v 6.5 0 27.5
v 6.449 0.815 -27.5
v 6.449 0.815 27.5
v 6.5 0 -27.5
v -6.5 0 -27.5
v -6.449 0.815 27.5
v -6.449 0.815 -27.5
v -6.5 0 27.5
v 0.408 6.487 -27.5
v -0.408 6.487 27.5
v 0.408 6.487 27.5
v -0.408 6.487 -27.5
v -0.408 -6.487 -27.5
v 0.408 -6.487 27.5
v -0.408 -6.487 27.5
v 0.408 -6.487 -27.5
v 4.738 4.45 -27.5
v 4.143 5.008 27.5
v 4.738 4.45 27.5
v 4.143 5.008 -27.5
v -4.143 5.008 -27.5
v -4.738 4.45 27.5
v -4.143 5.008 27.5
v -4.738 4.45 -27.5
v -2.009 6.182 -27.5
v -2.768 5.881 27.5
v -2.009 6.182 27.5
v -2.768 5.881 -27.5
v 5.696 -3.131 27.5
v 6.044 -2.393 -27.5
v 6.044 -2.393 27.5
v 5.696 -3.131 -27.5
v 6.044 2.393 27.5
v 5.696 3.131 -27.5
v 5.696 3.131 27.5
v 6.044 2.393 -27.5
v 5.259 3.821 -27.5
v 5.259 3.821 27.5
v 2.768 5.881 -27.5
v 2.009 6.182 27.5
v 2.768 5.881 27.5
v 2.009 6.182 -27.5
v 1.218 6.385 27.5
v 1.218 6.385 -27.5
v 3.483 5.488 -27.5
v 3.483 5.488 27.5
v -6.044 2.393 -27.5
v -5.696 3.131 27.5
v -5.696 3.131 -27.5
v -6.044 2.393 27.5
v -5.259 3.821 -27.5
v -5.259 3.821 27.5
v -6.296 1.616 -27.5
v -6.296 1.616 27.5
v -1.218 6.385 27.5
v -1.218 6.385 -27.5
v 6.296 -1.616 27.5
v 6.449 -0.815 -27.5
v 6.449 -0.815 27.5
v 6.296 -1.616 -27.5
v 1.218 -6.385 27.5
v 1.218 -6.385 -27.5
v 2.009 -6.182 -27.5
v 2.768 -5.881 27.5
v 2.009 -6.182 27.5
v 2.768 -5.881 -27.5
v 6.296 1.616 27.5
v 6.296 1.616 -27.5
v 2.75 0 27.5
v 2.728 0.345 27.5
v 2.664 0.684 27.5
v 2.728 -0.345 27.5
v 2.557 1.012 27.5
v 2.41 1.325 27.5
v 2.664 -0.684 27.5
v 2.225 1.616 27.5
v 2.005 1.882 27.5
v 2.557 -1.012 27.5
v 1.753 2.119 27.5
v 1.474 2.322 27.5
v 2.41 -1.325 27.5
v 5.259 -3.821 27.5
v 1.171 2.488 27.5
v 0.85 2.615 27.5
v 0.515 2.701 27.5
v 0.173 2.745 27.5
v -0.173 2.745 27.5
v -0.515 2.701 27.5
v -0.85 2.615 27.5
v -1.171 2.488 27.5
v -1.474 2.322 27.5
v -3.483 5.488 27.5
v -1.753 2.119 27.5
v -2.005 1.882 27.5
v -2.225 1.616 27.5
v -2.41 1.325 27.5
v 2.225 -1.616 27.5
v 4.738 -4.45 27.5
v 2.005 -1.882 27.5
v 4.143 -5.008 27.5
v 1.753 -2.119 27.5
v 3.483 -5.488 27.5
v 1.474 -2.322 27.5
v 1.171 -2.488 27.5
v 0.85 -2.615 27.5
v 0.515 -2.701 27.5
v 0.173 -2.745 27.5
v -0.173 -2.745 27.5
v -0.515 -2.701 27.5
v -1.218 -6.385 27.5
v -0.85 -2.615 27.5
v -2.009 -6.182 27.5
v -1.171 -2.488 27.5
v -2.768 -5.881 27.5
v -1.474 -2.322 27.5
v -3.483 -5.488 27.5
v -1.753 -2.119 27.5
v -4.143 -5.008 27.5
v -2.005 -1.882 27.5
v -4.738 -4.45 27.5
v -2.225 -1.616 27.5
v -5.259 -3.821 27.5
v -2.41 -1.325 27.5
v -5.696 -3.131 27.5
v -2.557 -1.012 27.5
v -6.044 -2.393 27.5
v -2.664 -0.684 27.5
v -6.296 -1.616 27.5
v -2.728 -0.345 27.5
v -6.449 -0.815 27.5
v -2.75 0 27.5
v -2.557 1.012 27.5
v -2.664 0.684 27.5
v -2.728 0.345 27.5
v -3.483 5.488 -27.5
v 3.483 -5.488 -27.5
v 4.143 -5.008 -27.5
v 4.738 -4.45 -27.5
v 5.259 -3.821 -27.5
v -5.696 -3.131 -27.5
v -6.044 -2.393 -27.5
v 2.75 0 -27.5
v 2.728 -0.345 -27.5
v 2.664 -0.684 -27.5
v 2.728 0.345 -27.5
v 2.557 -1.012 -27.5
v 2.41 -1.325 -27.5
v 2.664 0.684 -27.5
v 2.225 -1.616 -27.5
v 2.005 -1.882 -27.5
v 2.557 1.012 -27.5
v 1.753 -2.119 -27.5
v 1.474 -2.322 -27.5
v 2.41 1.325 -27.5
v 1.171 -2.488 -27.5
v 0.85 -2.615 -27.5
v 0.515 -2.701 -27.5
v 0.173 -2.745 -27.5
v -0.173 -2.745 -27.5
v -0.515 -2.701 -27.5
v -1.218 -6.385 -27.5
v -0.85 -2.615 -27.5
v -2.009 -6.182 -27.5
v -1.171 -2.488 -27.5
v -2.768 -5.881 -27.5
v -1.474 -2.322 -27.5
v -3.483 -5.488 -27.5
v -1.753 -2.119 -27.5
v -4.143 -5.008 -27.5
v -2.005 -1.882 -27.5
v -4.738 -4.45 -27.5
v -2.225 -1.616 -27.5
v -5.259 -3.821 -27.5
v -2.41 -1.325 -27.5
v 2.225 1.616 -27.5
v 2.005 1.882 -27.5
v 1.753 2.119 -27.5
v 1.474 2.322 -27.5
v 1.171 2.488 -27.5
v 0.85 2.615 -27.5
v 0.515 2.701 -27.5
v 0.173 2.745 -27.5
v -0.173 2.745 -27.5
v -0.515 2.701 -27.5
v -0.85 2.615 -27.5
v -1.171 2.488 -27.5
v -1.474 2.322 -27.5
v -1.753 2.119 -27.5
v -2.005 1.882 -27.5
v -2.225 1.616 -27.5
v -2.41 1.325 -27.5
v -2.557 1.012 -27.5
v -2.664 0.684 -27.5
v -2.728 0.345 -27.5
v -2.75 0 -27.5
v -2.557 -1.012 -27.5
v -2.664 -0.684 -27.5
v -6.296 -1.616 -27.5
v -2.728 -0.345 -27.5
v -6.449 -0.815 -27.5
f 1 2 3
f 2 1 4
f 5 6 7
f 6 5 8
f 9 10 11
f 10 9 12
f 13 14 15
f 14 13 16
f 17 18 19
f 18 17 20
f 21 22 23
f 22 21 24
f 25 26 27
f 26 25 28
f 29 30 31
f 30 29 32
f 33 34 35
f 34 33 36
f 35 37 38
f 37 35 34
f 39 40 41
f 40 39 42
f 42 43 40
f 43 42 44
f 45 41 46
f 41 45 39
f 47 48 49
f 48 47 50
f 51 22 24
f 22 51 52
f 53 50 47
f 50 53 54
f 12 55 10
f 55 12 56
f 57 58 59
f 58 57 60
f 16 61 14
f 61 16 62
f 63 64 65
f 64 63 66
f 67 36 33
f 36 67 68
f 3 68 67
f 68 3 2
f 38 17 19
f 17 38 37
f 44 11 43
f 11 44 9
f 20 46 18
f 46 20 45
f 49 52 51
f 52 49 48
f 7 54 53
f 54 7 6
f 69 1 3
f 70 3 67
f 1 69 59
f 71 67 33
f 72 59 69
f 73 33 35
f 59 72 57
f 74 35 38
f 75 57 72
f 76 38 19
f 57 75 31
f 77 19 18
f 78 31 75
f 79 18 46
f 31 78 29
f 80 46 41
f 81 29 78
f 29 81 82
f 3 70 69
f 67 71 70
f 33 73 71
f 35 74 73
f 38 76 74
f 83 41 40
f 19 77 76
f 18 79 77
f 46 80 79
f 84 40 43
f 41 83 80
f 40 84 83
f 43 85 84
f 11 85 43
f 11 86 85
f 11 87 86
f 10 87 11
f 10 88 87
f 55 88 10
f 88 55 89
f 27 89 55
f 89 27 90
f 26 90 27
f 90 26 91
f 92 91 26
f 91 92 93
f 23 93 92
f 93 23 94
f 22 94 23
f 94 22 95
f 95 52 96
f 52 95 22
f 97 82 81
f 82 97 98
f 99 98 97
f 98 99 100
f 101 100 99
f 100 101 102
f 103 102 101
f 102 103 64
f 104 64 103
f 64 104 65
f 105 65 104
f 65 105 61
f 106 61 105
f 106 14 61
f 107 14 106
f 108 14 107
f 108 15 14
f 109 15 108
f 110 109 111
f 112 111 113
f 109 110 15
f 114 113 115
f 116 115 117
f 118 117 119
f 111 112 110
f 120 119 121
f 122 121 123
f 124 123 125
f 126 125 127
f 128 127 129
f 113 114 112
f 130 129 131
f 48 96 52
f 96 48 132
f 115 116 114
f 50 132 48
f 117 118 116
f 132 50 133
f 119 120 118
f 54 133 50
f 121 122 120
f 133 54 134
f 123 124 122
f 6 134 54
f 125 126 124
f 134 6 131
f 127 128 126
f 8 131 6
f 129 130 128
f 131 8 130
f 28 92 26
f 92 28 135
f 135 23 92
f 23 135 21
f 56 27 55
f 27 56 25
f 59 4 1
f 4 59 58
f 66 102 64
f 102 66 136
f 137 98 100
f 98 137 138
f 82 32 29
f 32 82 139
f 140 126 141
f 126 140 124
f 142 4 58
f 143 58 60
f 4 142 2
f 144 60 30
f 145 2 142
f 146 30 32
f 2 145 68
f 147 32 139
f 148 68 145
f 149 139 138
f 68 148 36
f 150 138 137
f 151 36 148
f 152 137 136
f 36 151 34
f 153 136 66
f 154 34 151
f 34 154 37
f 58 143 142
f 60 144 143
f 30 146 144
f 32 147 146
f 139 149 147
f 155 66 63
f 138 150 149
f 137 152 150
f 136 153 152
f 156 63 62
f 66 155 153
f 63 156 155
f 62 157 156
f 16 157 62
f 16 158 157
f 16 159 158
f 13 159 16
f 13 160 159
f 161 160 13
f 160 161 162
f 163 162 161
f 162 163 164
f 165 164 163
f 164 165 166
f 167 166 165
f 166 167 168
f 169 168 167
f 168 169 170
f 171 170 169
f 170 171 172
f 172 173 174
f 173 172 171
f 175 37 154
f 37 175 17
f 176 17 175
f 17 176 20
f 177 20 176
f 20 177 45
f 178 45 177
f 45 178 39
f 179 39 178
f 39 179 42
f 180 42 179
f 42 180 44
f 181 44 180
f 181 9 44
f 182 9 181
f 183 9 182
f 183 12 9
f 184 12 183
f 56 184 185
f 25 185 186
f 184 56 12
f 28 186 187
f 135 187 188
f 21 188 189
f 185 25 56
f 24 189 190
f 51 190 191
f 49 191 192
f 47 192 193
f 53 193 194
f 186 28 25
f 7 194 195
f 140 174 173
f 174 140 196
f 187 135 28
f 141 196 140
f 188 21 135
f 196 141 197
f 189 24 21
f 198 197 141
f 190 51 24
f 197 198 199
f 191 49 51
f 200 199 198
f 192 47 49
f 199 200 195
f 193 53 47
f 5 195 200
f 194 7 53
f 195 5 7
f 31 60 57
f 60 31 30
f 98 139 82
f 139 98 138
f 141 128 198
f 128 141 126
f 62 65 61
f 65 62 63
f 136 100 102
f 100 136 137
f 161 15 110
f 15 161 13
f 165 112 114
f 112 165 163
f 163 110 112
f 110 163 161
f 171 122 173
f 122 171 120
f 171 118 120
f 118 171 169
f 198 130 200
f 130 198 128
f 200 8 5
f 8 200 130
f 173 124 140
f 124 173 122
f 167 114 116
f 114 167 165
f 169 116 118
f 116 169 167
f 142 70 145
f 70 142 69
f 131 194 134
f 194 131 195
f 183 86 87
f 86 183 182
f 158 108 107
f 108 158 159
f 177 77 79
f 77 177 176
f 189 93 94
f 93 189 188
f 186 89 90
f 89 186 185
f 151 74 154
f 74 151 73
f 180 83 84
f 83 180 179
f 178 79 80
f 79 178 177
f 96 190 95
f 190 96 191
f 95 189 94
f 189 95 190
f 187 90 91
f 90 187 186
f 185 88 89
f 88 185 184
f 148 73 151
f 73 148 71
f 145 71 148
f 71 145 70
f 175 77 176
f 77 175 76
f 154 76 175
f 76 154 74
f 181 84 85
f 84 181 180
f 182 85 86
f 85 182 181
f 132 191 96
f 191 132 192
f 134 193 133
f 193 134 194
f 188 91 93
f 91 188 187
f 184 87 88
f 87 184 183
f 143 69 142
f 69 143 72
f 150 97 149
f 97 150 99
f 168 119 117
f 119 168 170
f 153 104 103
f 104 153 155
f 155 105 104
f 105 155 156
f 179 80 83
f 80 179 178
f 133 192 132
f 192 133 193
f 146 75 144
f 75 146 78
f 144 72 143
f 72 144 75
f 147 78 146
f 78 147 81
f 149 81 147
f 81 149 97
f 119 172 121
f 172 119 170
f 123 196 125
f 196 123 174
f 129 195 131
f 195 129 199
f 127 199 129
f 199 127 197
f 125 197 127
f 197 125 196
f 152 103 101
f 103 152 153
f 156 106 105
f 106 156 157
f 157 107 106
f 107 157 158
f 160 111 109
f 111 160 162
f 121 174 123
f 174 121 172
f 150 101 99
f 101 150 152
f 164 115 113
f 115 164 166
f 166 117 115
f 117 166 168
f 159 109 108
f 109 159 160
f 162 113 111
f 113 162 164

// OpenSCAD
$fn = 50;


difference() {
	union() {
		translate(v = [0, 0, -27.5000000000]) {
			cylinder(h = 55, r = 6.5000000000);
		}
	}
	union() {
		translate(v = [0, 0, -100.0000000000]) {
			cylinder(h = 200, r = 2.7500000000);
		}
	}
}
